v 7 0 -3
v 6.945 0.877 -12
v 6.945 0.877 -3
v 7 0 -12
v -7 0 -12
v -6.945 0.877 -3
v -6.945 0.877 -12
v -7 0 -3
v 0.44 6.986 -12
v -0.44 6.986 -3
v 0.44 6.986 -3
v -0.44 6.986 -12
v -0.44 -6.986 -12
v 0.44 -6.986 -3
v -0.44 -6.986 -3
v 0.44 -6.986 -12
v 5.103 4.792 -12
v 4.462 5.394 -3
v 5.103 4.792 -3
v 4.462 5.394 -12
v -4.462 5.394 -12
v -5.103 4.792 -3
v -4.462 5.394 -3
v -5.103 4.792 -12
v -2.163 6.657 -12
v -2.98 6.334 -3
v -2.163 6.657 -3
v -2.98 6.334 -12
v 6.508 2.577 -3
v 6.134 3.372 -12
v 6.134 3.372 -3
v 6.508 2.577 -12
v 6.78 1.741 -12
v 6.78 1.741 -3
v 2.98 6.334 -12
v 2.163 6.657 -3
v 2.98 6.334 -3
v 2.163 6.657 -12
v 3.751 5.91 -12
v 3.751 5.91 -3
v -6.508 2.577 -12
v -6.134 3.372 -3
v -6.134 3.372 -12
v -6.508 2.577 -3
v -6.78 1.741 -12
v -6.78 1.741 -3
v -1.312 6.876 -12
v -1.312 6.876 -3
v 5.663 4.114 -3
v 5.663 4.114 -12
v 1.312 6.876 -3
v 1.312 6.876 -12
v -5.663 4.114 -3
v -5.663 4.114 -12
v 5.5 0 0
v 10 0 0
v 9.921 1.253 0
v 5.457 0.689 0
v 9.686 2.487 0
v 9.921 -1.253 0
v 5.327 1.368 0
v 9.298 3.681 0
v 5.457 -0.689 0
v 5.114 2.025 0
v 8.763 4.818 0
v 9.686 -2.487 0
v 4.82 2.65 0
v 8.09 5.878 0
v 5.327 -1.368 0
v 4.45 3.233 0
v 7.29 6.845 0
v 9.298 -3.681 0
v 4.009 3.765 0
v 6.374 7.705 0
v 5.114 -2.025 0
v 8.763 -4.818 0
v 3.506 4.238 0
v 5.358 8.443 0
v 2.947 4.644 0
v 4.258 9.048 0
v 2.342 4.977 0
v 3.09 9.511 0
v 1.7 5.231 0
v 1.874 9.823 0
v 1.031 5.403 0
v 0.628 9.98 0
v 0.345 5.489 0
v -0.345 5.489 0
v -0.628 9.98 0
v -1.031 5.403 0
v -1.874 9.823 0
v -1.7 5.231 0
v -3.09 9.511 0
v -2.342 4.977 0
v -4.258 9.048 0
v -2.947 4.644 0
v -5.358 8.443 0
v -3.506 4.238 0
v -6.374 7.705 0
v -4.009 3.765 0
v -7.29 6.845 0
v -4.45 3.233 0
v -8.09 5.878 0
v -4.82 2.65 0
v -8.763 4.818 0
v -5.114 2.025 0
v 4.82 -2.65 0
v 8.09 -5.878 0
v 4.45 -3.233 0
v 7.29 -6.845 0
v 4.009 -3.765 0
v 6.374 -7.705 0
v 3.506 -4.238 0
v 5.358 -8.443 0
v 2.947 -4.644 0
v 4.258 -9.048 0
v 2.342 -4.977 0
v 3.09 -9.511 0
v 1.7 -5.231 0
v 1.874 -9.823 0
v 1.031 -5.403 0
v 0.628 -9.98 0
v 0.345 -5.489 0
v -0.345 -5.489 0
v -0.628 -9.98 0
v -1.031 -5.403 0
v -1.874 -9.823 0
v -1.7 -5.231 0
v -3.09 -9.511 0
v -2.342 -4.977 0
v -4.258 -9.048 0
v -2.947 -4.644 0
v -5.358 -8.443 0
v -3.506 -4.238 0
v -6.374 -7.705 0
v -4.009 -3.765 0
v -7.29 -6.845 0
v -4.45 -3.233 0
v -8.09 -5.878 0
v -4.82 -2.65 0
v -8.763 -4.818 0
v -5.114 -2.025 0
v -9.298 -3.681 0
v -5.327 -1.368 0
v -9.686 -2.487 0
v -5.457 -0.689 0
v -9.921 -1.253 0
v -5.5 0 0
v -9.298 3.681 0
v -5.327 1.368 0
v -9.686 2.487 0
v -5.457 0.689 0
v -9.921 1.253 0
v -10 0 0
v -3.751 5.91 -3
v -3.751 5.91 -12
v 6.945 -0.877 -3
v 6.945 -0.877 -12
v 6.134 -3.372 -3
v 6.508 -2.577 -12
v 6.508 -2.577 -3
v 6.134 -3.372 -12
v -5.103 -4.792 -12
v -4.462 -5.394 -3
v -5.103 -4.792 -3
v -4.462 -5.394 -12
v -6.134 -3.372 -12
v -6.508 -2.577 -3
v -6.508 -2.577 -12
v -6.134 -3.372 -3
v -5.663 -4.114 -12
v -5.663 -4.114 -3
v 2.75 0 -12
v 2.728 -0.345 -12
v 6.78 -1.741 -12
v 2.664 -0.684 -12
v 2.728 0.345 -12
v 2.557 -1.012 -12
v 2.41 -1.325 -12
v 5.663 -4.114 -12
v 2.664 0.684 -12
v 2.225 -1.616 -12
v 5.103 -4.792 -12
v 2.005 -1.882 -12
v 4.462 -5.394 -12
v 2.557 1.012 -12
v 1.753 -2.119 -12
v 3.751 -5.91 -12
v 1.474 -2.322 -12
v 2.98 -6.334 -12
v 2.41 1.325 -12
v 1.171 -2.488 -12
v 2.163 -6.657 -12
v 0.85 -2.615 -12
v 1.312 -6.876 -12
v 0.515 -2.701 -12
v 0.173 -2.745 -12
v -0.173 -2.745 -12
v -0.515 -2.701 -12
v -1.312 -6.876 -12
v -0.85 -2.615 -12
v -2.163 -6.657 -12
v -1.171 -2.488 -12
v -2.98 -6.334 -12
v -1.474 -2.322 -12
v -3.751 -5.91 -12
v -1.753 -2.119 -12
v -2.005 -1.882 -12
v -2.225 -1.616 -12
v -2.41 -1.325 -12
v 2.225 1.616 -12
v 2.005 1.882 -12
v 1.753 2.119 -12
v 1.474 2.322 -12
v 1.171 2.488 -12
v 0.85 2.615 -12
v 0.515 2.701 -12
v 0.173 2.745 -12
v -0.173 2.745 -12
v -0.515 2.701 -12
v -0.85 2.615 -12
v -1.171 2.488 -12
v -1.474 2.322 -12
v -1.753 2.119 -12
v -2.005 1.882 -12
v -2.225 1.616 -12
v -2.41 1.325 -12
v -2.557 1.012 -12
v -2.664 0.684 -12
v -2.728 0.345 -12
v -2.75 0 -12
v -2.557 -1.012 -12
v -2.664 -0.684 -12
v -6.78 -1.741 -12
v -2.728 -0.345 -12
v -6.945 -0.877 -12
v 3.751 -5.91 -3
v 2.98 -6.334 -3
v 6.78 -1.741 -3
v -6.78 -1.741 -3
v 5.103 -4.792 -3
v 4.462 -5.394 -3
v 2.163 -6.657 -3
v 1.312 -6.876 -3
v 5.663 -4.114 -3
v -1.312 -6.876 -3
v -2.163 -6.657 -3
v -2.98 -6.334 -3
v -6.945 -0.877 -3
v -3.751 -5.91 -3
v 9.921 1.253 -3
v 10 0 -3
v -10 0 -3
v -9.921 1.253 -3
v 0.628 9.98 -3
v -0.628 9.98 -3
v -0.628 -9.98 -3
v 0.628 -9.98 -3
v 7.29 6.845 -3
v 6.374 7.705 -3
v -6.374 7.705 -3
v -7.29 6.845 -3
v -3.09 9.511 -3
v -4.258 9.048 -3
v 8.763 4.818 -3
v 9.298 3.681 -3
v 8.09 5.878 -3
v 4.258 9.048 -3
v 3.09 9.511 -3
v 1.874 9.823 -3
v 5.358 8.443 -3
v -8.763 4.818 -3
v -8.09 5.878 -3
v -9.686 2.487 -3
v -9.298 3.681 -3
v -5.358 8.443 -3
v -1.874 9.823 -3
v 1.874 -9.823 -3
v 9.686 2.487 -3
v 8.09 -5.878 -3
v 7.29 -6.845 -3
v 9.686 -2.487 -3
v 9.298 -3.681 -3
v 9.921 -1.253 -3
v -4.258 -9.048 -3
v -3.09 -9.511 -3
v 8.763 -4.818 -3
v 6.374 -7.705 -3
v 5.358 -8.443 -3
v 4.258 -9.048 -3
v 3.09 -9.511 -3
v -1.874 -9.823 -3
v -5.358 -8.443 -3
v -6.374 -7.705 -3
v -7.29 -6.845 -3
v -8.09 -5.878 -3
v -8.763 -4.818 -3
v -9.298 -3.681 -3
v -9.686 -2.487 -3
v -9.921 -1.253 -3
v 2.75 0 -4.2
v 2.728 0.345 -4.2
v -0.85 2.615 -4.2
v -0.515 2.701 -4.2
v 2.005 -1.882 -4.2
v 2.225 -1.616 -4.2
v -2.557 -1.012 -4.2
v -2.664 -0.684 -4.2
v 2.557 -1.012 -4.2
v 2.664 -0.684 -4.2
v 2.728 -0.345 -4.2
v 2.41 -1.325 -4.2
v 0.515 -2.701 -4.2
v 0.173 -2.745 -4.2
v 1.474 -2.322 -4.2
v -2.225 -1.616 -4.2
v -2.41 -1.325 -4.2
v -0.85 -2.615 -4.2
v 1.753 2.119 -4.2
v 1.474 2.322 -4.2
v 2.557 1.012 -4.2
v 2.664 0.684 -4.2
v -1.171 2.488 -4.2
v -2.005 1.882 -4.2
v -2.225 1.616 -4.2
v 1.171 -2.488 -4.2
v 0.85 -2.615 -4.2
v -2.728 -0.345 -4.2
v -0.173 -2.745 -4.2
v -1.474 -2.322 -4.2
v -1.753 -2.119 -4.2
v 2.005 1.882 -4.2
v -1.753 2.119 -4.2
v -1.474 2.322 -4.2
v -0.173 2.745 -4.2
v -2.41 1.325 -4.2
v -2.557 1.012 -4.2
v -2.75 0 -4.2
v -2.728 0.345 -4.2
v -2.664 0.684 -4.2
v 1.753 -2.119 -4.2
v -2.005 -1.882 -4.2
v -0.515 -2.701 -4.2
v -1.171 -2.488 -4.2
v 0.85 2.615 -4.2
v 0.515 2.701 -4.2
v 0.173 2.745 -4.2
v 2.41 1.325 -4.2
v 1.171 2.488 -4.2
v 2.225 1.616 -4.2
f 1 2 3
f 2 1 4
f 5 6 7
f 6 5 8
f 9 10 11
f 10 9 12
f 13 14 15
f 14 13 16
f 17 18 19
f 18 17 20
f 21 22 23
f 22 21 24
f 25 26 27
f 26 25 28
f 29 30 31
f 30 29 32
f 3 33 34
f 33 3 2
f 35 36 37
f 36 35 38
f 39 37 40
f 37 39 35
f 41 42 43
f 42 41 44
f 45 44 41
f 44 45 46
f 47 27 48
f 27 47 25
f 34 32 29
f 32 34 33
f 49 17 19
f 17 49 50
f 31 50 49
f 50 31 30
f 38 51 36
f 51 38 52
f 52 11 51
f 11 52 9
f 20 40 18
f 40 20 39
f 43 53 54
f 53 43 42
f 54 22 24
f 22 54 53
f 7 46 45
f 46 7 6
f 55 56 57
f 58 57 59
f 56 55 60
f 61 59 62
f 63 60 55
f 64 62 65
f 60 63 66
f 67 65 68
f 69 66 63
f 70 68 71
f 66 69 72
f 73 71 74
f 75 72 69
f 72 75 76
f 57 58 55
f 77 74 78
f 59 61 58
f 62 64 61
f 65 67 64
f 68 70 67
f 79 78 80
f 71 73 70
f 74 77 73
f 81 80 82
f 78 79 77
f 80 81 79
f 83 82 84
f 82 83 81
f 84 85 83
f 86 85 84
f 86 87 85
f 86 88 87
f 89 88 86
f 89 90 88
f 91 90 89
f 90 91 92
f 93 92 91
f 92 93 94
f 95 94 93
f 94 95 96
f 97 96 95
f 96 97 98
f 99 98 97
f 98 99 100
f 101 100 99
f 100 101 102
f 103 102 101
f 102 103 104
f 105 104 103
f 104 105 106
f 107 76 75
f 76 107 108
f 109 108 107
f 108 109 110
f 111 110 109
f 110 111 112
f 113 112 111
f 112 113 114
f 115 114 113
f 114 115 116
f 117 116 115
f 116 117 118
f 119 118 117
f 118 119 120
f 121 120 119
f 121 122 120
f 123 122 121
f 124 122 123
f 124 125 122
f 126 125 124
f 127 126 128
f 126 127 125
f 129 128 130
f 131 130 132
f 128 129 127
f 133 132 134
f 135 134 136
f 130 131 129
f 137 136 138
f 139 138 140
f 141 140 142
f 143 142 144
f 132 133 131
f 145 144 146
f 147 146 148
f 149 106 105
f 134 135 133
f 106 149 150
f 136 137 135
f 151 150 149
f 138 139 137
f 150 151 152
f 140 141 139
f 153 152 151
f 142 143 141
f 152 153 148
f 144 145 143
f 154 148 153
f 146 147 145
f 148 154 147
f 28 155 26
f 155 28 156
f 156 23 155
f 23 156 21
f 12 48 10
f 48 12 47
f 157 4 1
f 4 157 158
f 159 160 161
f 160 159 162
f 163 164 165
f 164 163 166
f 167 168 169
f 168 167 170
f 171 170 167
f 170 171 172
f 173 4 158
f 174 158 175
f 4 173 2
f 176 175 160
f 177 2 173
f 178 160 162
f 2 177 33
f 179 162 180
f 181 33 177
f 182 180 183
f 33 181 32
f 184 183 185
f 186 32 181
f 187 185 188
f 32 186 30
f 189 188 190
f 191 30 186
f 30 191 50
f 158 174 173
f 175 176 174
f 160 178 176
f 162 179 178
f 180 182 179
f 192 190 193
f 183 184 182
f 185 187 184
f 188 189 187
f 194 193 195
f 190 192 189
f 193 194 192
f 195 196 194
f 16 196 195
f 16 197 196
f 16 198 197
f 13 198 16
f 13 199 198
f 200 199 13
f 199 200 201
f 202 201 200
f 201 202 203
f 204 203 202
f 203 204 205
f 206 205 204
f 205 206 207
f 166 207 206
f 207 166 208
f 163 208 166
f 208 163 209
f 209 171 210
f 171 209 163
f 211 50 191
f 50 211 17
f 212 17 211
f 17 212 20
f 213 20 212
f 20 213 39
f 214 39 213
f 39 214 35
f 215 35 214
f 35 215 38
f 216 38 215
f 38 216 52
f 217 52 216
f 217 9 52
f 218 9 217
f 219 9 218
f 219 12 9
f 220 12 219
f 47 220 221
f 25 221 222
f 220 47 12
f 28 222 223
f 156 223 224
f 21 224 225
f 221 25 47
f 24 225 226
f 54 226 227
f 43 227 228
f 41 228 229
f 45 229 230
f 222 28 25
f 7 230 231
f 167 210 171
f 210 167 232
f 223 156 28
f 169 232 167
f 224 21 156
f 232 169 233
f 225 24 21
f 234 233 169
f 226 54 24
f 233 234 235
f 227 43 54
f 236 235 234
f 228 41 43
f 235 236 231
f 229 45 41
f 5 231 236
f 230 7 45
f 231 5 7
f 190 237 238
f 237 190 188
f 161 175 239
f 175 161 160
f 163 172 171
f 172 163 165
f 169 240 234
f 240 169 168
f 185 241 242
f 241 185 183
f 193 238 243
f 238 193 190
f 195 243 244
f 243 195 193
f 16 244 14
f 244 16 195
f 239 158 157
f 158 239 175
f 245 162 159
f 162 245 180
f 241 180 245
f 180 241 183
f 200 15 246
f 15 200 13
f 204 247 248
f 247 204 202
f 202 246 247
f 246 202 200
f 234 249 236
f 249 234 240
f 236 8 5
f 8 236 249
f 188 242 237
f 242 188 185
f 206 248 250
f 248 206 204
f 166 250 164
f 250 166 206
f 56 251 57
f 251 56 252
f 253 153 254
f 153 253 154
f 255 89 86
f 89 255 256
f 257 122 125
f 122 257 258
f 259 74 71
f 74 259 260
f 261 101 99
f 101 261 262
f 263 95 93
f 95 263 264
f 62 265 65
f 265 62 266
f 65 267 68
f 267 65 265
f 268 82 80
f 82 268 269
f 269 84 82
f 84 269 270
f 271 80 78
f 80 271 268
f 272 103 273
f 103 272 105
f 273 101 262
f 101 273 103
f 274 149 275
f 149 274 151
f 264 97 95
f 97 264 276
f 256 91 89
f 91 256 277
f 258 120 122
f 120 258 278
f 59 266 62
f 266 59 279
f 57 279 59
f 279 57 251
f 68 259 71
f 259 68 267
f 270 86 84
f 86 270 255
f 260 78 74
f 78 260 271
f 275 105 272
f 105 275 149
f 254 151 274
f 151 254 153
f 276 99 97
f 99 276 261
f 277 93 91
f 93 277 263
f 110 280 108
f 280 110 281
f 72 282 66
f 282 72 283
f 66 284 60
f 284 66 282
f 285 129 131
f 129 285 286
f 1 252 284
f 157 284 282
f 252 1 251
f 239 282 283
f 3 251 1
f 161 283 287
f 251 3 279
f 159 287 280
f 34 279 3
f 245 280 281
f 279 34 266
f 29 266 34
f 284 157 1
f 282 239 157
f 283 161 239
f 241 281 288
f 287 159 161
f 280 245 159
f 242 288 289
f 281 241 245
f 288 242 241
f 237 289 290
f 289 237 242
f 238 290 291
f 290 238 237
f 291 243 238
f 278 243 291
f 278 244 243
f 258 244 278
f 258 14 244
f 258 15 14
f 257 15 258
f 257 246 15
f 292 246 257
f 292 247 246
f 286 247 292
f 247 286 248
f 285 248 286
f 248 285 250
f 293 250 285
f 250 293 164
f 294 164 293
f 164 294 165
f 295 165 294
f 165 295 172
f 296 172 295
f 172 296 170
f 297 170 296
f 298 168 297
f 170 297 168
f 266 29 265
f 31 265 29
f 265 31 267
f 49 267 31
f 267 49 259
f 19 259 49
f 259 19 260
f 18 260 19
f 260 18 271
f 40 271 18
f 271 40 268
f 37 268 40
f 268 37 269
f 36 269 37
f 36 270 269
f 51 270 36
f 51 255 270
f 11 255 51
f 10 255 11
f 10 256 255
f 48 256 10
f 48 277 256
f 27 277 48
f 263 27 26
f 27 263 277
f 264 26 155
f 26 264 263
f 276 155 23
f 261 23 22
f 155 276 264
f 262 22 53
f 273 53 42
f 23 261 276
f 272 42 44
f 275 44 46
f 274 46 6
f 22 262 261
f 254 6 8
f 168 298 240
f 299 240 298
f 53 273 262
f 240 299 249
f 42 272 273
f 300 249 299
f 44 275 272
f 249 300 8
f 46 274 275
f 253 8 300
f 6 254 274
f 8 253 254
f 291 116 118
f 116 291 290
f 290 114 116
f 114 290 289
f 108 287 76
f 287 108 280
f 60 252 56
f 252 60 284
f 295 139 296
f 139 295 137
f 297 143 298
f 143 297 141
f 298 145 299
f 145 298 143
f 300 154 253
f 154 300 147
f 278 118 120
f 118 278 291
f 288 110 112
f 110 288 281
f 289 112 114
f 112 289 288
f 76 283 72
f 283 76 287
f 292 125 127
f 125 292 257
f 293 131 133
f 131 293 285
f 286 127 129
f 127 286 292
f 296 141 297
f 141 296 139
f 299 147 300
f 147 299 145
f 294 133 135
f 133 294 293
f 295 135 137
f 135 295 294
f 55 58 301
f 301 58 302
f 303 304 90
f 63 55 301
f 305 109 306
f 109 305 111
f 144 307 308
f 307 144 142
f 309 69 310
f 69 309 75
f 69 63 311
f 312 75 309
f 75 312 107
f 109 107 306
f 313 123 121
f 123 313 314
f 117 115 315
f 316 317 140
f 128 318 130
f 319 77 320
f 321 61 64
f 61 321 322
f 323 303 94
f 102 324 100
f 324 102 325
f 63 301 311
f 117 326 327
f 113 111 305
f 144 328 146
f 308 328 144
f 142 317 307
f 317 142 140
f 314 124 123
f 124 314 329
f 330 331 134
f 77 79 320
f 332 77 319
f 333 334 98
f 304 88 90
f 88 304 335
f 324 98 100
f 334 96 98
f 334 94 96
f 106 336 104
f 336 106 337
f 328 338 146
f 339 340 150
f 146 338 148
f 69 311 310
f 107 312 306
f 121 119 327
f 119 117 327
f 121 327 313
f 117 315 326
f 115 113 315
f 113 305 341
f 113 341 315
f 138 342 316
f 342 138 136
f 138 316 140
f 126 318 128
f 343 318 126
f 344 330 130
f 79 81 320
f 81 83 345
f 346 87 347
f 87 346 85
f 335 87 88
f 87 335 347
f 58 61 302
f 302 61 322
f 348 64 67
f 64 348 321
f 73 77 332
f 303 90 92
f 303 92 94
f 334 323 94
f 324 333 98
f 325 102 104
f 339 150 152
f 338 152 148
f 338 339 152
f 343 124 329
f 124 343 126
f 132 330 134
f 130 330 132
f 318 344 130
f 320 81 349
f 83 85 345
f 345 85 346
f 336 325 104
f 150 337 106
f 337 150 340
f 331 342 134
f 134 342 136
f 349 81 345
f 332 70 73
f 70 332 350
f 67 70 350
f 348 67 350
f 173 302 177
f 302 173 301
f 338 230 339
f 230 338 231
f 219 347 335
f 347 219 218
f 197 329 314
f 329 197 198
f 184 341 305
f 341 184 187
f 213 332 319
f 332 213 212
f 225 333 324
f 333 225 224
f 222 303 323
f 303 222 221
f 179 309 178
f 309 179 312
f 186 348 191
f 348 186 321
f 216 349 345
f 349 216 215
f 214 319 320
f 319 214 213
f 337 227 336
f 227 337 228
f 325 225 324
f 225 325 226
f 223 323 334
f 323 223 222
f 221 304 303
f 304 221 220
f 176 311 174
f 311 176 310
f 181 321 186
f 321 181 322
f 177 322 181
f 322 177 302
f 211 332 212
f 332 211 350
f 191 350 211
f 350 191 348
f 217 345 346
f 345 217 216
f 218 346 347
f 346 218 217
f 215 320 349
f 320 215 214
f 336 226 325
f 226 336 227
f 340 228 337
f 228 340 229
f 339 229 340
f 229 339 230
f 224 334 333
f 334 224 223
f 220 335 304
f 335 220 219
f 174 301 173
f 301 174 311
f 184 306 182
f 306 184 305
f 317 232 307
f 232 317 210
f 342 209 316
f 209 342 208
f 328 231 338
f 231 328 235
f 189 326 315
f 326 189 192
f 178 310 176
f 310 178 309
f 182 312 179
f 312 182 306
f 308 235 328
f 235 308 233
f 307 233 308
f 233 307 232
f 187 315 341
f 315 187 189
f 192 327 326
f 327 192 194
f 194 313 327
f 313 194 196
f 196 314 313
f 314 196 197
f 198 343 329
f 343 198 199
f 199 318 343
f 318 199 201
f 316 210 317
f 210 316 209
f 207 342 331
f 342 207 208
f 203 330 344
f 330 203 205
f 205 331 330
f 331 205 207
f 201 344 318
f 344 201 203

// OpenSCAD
$fn = 50;


difference() {
	union() {
		translate(v = [0, 0, -12.0000000000]) {
			cylinder(h = 12, r = 7.0000000000);
		}
		translate(v = [0, 0, -3.0000000000]) {
			cylinder(h = 3, r = 10.0000000000);
		}
	}
	union() {
		translate(v = [0, 0, 0]) {
			rotate(a = [0, 0, 0]) {
				difference() {
					union() {
						#translate(v = [0, 0, -12.0000000000]) {
							cylinder(h = 12, r = 2.2500000000);
						}
						#translate(v = [0, 0, -4.2000000000]) {
							cylinder(h = 4.2000000000, r1 = 2.7500000000, r2 = 5.5000000000);
						}
						#translate(v = [0, 0, -12.0000000000]) {
							cylinder(h = 12, r = 2.7500000000);
						}
						#translate(v = [0, 0, -12.0000000000]) {
							cylinder(h = 12, r = 2.2500000000);
						}
					}
					union();
				}
			}
		}
	}
}
